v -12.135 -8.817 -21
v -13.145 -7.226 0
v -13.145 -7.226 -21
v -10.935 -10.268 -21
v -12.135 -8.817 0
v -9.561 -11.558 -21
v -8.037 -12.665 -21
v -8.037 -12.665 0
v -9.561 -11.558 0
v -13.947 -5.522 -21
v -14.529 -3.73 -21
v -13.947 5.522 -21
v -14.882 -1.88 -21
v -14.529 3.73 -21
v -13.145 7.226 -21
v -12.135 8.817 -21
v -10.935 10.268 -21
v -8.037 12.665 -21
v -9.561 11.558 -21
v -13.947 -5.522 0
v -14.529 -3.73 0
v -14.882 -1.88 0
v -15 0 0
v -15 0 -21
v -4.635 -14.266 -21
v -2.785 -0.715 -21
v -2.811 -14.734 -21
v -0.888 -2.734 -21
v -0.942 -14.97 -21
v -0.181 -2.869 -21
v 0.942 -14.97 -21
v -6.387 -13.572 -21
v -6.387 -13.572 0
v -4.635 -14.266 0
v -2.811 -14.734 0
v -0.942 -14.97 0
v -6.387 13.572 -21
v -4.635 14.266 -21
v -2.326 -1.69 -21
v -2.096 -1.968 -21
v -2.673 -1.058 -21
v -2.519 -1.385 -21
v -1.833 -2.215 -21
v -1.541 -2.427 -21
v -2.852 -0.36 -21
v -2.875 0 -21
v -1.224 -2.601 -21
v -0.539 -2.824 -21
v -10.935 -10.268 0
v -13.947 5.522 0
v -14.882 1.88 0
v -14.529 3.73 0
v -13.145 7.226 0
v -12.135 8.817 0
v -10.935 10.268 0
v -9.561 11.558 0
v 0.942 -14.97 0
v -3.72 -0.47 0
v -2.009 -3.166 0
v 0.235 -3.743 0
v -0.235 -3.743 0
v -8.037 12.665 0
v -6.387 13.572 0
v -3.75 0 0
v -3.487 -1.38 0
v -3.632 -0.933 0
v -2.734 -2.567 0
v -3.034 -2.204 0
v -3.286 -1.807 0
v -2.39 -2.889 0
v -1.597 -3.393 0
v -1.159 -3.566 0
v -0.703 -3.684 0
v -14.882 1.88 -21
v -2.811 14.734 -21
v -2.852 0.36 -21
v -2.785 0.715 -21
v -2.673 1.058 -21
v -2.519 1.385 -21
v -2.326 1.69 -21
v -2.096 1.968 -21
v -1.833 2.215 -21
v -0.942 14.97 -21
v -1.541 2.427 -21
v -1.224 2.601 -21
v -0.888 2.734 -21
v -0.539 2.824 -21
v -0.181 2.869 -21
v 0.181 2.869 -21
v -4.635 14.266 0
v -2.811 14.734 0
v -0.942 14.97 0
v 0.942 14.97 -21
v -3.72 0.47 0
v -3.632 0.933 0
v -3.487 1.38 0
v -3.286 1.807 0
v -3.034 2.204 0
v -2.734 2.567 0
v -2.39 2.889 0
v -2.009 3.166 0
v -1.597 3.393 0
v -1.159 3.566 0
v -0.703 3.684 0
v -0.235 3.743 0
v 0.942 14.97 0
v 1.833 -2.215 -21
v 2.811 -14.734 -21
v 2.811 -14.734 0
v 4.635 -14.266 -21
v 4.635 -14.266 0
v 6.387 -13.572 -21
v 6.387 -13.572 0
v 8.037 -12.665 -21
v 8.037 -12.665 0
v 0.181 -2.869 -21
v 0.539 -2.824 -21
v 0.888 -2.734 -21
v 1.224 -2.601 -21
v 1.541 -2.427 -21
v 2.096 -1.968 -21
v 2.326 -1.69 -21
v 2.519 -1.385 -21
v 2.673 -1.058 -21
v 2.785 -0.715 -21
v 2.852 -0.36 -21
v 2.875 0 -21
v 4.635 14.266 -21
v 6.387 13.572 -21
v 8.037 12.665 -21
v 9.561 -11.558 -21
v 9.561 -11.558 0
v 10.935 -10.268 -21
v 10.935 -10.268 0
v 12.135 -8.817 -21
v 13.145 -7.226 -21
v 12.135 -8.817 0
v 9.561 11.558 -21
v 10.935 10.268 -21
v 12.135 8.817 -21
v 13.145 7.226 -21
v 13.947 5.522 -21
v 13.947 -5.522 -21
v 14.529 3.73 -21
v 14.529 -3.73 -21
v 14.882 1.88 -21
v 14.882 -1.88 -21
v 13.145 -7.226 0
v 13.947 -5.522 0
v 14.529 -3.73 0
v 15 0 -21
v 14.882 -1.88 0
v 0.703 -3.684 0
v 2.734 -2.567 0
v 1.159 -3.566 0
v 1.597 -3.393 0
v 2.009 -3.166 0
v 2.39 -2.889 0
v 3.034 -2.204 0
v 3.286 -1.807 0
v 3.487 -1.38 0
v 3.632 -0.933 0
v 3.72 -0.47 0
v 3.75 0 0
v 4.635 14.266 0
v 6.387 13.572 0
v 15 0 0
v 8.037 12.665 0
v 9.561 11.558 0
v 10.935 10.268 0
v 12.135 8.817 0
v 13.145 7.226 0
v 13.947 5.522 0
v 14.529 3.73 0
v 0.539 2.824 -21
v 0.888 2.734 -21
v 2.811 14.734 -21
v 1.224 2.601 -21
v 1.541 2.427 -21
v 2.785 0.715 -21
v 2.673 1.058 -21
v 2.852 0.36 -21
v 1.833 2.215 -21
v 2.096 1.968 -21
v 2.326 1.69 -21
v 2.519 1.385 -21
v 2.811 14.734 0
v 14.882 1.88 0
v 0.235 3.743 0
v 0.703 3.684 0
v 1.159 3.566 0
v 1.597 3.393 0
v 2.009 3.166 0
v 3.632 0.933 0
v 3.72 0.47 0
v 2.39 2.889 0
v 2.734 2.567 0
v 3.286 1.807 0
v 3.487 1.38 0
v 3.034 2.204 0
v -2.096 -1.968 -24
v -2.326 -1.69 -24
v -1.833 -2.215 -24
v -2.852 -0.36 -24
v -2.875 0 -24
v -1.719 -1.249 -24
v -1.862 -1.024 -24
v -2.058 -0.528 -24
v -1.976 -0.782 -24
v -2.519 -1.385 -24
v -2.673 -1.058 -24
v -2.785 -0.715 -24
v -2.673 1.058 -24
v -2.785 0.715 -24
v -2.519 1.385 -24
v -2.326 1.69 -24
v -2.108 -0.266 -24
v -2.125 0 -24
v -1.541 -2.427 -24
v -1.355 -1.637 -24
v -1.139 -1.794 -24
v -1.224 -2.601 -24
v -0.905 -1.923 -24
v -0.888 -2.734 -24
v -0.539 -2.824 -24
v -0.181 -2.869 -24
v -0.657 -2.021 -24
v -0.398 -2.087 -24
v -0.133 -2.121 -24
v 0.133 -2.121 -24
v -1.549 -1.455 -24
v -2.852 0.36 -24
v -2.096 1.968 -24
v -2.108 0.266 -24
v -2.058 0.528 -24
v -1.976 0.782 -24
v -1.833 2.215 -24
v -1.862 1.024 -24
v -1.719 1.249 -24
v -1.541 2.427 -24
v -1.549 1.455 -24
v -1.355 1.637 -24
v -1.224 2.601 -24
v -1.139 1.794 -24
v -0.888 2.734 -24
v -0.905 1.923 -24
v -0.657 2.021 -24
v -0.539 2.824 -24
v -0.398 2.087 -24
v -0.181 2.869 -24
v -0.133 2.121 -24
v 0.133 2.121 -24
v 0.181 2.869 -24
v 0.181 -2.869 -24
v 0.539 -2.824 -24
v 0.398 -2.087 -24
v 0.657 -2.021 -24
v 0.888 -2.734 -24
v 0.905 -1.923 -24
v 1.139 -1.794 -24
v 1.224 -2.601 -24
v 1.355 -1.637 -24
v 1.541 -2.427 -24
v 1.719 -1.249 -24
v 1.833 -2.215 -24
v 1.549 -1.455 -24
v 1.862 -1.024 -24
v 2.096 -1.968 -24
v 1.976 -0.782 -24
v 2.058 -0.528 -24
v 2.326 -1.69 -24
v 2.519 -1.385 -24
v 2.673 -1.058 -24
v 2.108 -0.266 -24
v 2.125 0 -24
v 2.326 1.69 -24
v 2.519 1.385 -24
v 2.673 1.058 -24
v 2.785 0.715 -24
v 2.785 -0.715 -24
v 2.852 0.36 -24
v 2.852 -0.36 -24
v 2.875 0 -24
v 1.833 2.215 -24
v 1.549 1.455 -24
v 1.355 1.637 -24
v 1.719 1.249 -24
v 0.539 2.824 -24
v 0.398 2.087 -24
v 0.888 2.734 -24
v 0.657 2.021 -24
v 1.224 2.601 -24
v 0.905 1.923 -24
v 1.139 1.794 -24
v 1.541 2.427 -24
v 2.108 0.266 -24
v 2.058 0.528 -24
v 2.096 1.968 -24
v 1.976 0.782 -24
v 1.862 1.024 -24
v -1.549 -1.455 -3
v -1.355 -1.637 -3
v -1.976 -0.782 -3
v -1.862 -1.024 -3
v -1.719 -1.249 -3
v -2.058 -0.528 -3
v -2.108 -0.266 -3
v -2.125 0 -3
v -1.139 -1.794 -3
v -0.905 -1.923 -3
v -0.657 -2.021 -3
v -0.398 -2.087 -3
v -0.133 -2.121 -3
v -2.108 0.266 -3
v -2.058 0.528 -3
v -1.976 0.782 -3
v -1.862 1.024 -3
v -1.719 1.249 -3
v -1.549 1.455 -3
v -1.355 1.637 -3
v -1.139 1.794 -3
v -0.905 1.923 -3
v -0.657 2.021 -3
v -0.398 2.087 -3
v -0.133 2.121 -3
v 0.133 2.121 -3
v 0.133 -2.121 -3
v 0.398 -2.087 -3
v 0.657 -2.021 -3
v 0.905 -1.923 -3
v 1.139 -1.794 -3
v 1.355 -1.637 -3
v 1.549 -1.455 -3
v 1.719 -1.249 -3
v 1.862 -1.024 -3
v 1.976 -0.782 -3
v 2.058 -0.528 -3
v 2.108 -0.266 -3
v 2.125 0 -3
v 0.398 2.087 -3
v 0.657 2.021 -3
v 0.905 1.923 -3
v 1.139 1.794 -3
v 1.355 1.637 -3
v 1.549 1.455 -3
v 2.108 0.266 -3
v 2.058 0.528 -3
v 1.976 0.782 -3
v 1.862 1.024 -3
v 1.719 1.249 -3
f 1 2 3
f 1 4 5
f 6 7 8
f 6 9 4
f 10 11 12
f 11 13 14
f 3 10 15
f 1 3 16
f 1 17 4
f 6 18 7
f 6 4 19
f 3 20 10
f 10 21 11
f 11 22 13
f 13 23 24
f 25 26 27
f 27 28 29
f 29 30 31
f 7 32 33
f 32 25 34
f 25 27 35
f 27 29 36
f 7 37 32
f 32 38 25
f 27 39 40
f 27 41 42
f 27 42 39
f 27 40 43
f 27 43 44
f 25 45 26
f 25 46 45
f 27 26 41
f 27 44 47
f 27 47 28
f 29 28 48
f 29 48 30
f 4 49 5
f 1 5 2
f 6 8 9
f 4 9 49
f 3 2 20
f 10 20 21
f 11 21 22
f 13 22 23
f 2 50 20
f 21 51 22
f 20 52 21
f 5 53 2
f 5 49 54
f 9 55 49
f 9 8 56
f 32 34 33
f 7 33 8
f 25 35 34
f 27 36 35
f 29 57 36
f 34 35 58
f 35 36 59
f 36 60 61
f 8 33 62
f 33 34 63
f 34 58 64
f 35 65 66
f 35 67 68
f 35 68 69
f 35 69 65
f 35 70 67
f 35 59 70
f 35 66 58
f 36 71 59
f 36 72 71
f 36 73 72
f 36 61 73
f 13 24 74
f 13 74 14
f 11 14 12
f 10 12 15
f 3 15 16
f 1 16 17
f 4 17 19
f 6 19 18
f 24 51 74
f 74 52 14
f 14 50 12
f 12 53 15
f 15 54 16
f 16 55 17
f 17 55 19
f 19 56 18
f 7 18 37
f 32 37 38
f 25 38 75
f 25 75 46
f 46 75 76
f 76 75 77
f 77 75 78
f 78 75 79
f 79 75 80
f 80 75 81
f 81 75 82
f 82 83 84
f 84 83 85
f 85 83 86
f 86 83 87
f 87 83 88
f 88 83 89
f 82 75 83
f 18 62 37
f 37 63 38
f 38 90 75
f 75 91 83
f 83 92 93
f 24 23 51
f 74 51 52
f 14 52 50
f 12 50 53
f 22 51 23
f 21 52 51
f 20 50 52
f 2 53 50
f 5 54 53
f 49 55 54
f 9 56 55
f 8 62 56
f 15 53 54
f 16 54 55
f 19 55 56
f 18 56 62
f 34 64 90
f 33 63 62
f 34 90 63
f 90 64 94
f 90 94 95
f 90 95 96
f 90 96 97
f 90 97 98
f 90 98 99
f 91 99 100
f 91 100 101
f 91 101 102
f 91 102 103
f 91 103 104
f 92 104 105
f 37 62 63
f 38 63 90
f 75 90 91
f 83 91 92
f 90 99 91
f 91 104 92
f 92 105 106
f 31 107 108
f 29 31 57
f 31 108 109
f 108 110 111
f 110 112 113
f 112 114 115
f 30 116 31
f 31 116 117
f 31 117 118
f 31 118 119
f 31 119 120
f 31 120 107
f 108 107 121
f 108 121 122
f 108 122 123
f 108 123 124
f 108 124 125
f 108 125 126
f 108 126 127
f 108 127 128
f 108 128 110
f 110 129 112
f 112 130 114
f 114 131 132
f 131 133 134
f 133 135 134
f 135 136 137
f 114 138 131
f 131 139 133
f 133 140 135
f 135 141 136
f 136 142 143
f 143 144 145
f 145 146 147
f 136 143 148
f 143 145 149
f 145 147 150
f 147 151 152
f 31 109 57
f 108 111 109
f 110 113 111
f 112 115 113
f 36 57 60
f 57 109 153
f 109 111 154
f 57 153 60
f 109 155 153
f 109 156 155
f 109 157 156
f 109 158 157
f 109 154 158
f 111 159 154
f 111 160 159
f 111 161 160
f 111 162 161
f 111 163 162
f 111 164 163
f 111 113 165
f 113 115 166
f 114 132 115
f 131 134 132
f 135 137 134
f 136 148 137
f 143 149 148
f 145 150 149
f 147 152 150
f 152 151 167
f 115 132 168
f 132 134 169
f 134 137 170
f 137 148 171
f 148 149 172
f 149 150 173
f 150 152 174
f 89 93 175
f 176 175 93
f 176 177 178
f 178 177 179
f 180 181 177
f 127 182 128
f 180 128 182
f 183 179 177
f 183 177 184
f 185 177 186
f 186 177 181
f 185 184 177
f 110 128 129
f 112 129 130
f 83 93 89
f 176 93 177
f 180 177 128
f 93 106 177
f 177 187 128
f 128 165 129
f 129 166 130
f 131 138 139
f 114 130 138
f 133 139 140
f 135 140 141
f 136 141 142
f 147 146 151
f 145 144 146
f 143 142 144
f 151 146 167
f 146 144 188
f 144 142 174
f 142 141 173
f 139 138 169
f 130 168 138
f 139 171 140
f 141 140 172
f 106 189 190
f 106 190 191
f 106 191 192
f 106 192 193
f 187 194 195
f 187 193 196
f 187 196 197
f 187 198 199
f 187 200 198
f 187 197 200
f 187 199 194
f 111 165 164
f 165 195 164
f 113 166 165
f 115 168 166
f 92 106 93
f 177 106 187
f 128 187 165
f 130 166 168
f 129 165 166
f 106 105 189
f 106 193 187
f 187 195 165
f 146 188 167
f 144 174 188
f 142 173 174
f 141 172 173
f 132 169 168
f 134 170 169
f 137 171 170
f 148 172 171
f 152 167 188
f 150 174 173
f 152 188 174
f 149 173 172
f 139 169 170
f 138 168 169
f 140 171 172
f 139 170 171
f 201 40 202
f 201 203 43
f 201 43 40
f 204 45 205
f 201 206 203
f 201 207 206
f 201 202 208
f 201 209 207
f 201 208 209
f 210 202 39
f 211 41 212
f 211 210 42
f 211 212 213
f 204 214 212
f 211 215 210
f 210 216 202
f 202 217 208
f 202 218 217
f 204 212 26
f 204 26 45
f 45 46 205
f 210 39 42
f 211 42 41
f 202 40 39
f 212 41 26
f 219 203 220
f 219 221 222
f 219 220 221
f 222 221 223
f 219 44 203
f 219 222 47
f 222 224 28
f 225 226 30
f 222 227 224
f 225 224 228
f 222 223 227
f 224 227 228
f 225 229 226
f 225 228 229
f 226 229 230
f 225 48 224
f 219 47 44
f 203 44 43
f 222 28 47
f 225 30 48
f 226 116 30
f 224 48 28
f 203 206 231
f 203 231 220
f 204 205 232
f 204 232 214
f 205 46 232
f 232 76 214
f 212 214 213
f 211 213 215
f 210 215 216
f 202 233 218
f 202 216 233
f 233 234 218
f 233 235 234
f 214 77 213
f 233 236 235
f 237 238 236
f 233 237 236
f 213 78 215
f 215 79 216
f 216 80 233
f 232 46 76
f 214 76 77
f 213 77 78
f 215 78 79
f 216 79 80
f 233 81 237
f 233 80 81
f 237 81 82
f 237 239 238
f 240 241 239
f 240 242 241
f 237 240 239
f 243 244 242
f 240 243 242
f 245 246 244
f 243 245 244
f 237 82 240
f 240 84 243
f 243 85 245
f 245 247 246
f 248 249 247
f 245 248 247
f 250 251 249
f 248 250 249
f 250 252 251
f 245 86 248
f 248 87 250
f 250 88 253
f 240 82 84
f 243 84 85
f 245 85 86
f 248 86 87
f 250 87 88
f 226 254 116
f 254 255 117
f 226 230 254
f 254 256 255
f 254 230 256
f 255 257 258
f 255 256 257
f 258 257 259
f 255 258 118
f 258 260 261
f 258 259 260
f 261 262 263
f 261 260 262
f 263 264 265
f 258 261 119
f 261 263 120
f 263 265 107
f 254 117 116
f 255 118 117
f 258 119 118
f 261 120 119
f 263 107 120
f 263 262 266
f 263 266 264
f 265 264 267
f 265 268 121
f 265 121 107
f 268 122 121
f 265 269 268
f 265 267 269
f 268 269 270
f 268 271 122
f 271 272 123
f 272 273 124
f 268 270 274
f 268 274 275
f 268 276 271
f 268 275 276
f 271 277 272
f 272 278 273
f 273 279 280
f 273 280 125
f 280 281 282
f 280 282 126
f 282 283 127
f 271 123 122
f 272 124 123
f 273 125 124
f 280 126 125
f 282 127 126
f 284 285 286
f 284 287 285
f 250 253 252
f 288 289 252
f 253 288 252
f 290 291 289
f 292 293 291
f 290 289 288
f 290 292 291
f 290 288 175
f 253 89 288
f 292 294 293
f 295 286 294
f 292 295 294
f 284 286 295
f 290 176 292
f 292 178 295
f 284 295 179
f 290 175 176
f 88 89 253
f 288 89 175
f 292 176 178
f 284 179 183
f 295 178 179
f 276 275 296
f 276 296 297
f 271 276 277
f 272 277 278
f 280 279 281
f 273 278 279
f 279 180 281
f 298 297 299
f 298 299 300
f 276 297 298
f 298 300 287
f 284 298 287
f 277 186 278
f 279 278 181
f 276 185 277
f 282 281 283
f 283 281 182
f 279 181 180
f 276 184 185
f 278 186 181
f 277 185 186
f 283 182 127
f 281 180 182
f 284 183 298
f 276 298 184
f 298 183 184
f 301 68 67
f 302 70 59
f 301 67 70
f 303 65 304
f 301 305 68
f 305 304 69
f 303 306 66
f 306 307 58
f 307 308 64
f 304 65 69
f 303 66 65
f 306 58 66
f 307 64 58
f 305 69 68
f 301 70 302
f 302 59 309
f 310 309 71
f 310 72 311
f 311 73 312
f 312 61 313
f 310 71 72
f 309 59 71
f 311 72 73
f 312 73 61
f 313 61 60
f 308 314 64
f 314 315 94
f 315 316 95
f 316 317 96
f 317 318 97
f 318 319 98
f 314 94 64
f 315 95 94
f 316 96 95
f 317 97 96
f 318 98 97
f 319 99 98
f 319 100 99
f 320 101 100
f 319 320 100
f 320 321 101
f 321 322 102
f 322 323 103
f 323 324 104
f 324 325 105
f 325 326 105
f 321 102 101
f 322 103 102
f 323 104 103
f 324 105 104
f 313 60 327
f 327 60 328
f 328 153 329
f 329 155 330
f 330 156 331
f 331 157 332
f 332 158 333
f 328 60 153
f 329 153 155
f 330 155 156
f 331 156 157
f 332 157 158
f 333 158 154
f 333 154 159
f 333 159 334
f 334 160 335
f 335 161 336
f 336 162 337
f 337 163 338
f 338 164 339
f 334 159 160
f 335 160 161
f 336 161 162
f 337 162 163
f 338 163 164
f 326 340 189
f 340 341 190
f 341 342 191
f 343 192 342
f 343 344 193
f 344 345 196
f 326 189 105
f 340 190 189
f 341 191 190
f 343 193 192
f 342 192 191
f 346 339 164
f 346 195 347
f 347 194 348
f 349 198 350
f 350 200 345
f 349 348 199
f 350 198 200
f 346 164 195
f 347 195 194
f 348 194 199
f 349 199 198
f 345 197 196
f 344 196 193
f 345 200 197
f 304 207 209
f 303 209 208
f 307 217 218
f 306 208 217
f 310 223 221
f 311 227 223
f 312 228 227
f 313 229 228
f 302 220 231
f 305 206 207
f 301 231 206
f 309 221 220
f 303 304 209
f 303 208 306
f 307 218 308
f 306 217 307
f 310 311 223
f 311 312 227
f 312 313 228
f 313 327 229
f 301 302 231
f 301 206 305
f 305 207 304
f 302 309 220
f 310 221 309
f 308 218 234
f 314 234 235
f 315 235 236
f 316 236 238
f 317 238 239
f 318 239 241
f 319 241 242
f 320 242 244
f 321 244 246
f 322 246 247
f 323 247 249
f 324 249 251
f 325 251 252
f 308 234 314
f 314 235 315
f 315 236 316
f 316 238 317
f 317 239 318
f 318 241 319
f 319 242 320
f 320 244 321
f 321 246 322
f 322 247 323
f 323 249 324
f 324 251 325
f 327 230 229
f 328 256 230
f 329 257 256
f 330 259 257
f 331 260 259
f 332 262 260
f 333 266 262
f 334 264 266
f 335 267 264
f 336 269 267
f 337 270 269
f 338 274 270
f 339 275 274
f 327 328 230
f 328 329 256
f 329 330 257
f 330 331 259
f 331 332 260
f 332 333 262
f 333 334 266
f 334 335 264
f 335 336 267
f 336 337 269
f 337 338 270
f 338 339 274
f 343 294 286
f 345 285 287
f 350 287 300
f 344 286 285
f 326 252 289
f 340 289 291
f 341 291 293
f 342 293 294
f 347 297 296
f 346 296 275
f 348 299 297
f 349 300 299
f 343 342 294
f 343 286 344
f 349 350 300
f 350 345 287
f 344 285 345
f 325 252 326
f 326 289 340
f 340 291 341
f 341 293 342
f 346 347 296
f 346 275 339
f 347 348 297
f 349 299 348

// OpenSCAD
$fn = 50;

difference() {
	union() {
		translate(v = [0, 0, -21.0]) {
			cylinder(h = 21, r = 15.0);
		}
		#translate(v = [0, 0, -24.0]) {
			cylinder(h = 24, r = 2.875);
		}
	}
	union() {
		translate(v = [0, 0, 0]) {
			rotate(a = [0, 0, 0]) {
				difference() {
					union() {
						translate(v = [0, 0, -24.0]) {
							cylinder(h = 24, r = 2.0);
						}
						translate(v = [0, 0, -3]) {
							cylinder(h = 3, r1 = 2.125, r2 = 3.75);
						}
						translate(v = [0, 0, -24.0]) {
							cylinder(h = 24, r = 2.125);
						}
						translate(v = [0, 0, -24.0]) {
							cylinder(h = 24, r = 2.0);
						}
					}
					union();
				}
			}
		}
	}
}
